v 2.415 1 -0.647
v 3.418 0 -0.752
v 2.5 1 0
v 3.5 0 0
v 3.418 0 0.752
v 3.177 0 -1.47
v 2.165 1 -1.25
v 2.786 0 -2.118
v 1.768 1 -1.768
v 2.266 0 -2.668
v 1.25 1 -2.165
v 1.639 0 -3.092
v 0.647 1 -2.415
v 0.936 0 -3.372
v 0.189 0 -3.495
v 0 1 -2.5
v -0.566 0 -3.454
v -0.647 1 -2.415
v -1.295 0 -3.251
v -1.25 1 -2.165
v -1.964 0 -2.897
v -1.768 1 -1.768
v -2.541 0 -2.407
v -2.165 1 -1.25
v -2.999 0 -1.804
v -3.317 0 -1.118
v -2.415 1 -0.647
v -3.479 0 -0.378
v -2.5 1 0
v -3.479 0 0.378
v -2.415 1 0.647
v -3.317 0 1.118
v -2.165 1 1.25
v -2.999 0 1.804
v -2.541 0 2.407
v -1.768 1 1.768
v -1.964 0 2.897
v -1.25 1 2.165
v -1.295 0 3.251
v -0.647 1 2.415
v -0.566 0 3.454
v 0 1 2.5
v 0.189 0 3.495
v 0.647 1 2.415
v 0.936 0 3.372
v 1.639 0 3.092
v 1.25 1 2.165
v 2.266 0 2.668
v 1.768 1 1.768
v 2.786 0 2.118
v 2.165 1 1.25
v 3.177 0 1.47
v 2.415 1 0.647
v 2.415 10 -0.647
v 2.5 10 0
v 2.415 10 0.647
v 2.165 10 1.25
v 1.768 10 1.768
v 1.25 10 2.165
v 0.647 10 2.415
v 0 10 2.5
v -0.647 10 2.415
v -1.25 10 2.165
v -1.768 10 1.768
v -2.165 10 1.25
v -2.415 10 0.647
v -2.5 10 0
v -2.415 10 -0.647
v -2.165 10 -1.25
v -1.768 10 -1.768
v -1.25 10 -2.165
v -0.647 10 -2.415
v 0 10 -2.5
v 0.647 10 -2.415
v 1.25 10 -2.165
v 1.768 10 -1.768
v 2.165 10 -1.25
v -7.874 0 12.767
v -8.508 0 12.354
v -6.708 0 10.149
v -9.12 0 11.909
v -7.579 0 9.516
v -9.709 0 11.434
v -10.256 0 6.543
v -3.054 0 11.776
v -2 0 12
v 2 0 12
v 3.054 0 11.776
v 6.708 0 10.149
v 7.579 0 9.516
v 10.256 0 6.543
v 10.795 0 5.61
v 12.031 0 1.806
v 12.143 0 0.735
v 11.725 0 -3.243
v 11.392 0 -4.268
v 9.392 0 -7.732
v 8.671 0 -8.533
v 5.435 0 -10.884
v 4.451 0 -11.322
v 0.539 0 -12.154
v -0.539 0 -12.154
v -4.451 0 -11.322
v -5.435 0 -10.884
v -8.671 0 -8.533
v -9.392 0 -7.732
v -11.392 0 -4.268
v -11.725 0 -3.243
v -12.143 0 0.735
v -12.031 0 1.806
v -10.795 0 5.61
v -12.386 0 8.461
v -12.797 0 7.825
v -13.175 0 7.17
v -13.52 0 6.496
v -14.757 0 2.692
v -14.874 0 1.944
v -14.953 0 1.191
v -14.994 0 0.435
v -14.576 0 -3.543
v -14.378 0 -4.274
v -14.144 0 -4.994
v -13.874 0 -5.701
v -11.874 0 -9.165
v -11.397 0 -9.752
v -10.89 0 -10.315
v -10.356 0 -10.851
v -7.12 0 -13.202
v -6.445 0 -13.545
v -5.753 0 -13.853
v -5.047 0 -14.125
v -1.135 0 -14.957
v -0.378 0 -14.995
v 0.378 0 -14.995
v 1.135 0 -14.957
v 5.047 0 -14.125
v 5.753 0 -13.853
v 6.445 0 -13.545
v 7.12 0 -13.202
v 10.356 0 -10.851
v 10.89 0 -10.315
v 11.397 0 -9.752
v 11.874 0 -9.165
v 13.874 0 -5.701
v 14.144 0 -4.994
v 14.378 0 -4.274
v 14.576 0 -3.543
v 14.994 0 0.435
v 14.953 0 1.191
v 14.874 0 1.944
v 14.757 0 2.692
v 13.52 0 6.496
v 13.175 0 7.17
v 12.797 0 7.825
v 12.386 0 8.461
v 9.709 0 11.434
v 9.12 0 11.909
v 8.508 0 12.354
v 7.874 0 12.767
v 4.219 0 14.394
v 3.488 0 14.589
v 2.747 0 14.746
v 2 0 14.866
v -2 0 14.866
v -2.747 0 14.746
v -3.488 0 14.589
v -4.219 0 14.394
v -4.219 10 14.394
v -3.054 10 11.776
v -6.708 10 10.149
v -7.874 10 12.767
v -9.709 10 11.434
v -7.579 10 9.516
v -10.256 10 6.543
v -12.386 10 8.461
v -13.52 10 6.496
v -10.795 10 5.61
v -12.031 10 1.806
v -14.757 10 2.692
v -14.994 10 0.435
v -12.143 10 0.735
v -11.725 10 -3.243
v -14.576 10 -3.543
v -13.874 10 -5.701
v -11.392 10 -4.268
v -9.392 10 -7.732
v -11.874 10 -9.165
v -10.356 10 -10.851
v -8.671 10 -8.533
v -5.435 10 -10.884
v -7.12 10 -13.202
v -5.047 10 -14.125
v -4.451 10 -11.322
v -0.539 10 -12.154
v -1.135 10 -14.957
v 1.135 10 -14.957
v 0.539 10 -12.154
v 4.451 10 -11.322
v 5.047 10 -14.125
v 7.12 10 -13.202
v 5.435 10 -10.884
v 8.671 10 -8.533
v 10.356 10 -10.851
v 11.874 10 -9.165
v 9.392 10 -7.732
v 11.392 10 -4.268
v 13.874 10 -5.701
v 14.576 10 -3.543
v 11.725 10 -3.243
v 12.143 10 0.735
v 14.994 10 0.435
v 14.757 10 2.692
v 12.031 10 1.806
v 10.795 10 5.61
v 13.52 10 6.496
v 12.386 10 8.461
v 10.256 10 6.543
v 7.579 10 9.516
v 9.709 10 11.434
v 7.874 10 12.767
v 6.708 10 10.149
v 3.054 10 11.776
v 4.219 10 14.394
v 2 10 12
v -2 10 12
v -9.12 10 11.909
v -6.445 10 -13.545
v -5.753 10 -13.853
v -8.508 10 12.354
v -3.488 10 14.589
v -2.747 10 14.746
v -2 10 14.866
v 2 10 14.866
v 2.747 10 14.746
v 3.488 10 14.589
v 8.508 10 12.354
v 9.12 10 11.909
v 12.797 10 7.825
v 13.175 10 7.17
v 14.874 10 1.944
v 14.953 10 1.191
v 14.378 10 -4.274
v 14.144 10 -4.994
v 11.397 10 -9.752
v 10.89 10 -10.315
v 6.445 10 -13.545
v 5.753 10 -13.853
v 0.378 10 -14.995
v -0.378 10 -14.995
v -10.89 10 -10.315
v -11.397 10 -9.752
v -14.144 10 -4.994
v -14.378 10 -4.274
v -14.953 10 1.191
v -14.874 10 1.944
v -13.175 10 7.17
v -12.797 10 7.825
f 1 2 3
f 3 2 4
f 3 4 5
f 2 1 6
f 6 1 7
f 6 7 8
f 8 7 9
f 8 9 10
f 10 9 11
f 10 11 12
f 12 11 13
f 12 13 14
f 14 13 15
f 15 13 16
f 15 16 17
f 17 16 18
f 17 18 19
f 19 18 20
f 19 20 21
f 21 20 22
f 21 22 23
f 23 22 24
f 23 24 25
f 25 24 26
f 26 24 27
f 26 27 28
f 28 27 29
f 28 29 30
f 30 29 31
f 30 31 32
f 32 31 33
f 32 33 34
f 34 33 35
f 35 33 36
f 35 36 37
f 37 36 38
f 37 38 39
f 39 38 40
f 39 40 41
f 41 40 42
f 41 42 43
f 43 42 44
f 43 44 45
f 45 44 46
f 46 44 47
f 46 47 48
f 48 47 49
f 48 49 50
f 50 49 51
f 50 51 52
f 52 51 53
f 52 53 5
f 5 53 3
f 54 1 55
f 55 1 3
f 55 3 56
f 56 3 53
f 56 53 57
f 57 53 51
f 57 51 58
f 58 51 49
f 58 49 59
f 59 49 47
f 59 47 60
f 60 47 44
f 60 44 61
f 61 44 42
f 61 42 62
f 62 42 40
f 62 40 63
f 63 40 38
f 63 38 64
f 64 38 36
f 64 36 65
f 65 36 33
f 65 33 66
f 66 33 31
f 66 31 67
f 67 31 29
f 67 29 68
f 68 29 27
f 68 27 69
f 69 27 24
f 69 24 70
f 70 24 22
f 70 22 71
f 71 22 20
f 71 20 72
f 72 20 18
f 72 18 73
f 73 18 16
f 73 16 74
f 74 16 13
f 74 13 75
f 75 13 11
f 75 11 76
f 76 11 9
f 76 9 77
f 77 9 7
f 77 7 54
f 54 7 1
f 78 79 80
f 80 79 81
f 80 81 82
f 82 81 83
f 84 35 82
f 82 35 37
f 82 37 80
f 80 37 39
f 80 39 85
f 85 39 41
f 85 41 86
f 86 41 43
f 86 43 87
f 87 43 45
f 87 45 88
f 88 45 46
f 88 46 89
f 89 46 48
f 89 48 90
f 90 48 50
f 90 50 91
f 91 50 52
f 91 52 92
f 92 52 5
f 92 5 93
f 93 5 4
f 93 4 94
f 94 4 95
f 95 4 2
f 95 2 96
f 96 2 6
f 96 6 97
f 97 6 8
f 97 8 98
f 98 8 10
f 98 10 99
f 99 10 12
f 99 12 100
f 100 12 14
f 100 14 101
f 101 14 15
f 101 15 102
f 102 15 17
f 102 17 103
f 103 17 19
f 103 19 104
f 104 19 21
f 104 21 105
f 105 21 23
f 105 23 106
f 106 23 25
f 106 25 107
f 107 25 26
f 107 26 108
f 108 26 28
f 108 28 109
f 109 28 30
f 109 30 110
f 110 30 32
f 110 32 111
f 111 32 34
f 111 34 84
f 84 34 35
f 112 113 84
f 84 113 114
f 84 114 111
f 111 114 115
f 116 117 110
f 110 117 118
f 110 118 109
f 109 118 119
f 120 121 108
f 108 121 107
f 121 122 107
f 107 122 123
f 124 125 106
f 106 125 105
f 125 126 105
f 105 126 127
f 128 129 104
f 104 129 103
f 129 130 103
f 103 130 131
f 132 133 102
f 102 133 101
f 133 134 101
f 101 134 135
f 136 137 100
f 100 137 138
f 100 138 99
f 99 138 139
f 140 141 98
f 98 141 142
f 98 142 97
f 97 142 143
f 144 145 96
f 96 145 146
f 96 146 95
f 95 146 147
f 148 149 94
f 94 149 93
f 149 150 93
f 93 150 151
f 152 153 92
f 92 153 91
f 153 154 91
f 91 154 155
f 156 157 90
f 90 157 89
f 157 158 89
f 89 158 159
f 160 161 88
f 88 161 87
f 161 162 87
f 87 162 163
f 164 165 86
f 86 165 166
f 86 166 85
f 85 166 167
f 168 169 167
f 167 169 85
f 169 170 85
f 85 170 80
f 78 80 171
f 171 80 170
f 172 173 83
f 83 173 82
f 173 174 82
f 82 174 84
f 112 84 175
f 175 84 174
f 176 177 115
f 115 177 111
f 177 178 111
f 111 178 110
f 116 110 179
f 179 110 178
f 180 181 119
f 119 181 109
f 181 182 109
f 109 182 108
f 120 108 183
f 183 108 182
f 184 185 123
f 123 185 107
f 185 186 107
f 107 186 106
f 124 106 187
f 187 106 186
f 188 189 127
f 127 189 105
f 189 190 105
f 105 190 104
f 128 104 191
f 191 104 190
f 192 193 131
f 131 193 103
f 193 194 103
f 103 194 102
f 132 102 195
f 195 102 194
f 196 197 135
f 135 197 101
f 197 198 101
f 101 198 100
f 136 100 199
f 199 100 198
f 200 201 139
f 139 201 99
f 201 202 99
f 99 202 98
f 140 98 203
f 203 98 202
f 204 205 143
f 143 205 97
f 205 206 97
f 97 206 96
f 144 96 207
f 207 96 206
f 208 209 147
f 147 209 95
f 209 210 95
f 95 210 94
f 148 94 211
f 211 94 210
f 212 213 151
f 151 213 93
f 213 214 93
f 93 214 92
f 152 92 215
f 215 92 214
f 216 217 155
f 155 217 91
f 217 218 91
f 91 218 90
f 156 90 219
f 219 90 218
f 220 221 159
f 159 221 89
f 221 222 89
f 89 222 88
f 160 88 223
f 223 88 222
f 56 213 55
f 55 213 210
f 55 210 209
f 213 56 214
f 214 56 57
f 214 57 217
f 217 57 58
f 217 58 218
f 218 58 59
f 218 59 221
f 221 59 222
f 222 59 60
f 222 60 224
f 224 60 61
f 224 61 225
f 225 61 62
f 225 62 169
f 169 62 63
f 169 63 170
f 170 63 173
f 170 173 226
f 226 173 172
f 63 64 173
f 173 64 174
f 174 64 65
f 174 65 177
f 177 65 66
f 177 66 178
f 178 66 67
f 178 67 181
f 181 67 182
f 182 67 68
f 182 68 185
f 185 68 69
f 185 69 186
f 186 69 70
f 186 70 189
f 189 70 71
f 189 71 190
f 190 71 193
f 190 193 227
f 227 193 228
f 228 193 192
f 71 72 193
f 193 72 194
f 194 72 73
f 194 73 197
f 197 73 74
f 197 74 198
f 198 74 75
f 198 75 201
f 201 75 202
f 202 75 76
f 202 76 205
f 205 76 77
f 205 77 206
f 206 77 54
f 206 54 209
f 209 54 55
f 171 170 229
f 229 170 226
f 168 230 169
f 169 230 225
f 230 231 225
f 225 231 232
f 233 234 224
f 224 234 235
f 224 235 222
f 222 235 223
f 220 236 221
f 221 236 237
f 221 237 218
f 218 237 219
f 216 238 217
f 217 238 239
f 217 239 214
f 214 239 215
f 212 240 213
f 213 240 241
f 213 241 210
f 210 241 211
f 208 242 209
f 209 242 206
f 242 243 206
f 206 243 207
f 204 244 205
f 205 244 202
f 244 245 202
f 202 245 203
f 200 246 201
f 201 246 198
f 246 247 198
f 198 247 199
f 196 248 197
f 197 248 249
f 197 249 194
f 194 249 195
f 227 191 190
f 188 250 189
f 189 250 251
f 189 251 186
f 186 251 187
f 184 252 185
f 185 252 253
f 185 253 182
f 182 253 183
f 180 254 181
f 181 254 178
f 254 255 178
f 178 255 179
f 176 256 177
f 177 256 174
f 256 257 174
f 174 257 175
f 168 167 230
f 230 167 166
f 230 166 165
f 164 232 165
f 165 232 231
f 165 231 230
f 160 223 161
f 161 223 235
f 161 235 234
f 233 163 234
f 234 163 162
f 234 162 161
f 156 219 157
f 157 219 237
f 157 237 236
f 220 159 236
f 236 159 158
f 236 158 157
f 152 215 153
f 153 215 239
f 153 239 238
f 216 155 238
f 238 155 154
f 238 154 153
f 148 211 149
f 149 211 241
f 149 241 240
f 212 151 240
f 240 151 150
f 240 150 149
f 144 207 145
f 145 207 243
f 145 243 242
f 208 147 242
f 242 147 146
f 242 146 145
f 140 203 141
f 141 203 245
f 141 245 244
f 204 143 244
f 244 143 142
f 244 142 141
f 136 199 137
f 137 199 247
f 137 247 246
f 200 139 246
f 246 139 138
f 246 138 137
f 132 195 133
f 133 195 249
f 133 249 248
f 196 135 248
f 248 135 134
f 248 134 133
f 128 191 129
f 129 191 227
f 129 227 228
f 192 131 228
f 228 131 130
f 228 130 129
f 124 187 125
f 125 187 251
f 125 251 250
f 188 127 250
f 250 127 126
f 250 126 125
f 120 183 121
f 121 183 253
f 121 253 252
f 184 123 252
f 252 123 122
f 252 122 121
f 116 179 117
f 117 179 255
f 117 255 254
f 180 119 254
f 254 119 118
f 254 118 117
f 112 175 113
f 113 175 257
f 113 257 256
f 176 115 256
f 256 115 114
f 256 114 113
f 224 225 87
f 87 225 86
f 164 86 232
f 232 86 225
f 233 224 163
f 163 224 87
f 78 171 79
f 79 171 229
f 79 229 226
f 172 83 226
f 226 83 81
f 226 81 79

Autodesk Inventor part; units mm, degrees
ref_plane "XY Plane" through (0, 0, 0) normal (0, 0, 1) x (1, 0, 0)
sketch "Sketch1" plane through (0, 0, 0) normal (0, 1, 0) x (-1, 0, 0)
  circle A0 centre (0, 0) radius 15
  dimension "d0" = 30
ref_plane "Work Plane1" through (0, 10, 0) normal (0, 1, 0) x (-1, 0, 0)
extrude "Extrusion1" add sketch "Sketch1" along normal blind 10
sketch "Sketch2" plane through (0, 10, 0) normal (0, 1, 0) x (1, 0, 0)
  line L0 (2, -22) -> (-2, -22)
  line L1 (-2, -22) -> (-2, -12)
  line L2 (-2, -12) -> (2, -12)
  line L3 (2, -12) -> (2, -22)
  circle A0 centre (0, 0) radius 15 projected
  point P0 (0, -12)
  dimension "d4" = 4
  dimension "d5" = 10
  dimension "d6" = 12
extrude "Extrusion2" cut sketch "Sketch2" against normal blind 10 contours L0 L1 A0 L3 | A0 L1 L2 L3 picked at (-0.2228, -12.995)
pattern_circular "Circular Pattern1" count 15 over 360 about axis through (0, 0, 0) along (0, 1, 0) of "Extrusion2"
sketch "Sketch6" plane through (0, 10, 0) normal (0, 1, 0) x (1, 0, 0)
  circle A0 centre (0, 0) radius 2.5
  dimension "d24" = 5
extrude "Extrusion6" cut sketch "Sketch6" against normal blind 10
chamfer "Chamfer1" distance 1 angle 45 1 edges at (-2.5, 0, 0)
properties part number "malare" material "Aluminum 6061"
